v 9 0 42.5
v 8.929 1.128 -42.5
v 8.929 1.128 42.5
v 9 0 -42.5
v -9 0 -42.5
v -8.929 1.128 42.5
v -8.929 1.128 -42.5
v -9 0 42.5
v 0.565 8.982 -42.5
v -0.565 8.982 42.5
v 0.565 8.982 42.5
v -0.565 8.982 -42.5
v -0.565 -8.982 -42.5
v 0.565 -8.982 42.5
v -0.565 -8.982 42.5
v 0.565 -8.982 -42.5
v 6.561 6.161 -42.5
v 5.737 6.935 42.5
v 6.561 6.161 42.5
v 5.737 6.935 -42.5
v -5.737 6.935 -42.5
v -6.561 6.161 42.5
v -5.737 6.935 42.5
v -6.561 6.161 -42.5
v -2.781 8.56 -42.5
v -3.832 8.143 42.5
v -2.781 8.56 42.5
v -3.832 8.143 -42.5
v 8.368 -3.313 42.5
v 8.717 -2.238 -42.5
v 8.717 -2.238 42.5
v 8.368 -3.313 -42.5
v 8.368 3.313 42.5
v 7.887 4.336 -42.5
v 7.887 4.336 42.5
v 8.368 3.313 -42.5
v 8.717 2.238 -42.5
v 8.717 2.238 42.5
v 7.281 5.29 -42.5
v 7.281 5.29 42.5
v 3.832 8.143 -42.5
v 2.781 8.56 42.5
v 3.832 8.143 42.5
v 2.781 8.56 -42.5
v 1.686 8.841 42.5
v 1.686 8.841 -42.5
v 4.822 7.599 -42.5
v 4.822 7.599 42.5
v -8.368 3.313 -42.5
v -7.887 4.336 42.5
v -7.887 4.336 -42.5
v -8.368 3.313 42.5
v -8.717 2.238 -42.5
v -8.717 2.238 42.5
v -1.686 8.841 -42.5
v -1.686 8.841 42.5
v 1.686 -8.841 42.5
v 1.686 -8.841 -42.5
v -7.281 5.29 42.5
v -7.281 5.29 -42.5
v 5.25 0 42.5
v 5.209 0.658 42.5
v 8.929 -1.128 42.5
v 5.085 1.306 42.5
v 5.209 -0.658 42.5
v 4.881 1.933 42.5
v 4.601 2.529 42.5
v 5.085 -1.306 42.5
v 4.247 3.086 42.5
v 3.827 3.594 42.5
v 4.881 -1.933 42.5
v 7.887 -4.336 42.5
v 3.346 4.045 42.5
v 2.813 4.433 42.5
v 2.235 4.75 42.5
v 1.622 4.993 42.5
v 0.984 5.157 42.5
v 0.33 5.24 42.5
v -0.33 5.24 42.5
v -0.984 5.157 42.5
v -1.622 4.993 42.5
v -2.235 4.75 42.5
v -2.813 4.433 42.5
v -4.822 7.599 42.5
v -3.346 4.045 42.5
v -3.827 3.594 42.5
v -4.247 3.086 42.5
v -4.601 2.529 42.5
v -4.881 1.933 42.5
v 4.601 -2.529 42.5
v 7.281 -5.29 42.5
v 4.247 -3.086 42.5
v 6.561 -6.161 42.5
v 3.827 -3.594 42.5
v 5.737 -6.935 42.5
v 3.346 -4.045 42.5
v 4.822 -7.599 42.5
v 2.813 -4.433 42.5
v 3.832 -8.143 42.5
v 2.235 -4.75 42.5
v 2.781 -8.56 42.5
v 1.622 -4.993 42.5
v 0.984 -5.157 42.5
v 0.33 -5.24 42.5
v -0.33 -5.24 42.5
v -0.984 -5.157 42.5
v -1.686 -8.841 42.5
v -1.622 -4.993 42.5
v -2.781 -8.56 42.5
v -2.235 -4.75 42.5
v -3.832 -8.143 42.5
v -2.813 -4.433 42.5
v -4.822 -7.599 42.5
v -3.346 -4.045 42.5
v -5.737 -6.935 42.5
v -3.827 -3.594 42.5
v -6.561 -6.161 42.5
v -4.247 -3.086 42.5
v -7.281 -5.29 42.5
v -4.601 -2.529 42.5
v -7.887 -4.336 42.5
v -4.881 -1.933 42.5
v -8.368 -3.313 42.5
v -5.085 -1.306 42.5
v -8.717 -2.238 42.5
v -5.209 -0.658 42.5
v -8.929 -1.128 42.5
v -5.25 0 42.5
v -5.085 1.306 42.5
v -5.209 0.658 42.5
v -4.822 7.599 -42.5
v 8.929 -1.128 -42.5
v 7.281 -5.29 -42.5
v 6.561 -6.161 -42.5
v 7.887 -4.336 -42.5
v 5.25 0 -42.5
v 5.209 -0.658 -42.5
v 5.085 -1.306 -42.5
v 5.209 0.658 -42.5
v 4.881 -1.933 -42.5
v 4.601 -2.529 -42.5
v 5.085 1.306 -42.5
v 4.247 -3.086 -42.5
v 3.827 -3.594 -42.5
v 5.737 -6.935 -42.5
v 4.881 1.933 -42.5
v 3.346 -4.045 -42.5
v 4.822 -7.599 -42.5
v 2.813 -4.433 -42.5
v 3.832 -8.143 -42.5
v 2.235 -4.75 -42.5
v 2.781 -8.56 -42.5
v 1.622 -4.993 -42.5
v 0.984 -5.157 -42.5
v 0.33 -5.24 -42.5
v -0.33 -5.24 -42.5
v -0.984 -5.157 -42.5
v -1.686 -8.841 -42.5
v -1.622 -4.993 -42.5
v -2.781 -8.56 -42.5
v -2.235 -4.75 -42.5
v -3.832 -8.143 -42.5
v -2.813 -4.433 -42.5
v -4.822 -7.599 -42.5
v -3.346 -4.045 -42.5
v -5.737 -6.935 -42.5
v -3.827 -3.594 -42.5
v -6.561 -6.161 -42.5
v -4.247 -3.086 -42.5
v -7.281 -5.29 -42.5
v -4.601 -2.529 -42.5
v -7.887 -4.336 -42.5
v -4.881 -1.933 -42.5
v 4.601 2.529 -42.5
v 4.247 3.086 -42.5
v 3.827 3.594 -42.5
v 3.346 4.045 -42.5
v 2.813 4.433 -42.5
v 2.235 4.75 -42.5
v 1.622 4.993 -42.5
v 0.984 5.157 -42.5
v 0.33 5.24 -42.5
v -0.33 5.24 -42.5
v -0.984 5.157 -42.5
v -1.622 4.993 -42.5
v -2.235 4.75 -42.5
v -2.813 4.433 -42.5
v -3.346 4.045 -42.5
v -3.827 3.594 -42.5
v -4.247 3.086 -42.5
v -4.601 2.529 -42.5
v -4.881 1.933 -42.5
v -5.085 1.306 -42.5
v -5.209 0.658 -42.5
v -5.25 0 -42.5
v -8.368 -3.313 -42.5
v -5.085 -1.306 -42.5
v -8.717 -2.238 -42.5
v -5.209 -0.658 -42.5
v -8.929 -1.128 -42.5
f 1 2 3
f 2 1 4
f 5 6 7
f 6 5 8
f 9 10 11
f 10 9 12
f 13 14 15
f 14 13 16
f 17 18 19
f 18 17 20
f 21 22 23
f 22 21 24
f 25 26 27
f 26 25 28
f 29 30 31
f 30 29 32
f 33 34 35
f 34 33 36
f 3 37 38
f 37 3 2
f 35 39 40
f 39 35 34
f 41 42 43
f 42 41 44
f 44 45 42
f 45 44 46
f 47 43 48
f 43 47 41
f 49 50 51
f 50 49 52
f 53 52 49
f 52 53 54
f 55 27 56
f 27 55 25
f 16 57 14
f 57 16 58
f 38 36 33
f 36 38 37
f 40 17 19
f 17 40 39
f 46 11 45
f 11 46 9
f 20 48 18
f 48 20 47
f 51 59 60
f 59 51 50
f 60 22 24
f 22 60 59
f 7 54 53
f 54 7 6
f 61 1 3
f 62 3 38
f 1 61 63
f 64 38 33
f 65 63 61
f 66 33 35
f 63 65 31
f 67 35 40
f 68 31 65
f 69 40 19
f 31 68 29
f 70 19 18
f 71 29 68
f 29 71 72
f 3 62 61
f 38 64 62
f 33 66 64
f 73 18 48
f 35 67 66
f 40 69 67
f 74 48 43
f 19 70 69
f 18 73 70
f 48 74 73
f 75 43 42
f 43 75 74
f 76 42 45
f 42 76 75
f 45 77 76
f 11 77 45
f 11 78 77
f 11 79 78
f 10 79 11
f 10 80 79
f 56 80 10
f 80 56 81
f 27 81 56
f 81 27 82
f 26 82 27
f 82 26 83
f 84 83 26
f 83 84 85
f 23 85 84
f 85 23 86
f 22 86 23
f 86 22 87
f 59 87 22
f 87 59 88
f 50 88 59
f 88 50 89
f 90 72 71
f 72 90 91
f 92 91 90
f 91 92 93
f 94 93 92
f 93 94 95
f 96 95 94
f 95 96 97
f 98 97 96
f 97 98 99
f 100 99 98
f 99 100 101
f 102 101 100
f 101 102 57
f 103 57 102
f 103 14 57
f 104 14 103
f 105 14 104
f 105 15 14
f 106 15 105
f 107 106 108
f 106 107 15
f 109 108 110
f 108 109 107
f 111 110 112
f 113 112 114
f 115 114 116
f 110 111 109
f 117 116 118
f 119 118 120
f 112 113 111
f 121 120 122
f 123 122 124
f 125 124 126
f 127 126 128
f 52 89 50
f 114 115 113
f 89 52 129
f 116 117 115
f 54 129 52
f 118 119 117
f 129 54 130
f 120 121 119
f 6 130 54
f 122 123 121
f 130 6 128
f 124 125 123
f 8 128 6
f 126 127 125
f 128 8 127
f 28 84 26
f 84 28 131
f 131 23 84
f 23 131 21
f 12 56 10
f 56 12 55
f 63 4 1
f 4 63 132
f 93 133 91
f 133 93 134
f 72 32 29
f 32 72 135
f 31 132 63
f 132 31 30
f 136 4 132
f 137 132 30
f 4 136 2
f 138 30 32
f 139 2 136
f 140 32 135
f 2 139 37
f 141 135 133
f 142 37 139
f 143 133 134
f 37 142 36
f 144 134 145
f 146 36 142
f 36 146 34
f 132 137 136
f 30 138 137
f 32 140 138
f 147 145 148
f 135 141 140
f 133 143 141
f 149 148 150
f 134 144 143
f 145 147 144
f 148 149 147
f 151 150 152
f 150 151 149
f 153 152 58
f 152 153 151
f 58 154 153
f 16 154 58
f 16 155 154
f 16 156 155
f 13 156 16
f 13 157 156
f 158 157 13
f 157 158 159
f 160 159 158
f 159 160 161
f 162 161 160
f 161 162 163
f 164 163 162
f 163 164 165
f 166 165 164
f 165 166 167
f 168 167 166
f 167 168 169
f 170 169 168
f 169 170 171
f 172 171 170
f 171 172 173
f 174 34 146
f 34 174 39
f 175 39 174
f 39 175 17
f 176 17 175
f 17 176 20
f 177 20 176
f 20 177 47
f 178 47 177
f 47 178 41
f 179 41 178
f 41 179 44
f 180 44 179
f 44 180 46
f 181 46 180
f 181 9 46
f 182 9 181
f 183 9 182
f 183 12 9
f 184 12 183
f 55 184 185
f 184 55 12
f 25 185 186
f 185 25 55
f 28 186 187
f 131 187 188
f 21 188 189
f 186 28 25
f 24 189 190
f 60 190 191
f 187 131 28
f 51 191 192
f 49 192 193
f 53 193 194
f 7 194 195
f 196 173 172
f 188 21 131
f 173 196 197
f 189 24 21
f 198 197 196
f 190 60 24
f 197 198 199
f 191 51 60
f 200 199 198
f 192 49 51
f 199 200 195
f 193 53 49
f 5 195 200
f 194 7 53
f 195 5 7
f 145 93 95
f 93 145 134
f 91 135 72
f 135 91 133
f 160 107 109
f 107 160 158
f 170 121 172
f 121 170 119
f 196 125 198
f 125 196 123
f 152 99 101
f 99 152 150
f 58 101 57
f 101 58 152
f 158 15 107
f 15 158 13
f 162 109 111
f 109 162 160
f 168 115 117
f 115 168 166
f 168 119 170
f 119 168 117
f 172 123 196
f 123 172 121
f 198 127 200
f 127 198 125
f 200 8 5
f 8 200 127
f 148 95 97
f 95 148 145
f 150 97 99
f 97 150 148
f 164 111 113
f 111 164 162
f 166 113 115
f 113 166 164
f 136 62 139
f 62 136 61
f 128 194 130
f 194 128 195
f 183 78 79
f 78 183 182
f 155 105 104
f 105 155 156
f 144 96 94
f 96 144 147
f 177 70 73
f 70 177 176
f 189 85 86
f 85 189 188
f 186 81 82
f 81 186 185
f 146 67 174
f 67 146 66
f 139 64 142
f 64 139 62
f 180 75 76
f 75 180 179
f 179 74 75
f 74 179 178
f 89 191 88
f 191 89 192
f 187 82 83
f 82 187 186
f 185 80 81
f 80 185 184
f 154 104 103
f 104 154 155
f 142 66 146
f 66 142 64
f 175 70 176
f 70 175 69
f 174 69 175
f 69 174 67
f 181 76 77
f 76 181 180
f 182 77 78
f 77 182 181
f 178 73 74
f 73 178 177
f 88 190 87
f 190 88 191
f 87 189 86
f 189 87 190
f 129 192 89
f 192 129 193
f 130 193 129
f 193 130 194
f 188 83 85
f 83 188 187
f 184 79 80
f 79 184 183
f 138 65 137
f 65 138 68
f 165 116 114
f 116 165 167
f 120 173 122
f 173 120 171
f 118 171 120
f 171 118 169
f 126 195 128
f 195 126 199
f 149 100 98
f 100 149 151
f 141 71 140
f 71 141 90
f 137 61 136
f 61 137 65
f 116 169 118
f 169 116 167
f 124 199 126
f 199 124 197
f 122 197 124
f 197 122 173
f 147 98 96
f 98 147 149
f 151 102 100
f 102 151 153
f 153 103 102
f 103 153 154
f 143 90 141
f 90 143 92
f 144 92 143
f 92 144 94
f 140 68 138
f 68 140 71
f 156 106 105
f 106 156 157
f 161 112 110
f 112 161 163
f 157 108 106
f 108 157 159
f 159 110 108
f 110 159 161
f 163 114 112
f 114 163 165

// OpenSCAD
$fn = 50;


difference() {
	union() {
		translate(v = [0, 0, -42.5000000000]) {
			cylinder(h = 85, r = 9.0000000000);
		}
	}
	union() {
		translate(v = [0, 0, -100.0000000000]) {
			cylinder(h = 200, r = 5.2500000000);
		}
	}
}
